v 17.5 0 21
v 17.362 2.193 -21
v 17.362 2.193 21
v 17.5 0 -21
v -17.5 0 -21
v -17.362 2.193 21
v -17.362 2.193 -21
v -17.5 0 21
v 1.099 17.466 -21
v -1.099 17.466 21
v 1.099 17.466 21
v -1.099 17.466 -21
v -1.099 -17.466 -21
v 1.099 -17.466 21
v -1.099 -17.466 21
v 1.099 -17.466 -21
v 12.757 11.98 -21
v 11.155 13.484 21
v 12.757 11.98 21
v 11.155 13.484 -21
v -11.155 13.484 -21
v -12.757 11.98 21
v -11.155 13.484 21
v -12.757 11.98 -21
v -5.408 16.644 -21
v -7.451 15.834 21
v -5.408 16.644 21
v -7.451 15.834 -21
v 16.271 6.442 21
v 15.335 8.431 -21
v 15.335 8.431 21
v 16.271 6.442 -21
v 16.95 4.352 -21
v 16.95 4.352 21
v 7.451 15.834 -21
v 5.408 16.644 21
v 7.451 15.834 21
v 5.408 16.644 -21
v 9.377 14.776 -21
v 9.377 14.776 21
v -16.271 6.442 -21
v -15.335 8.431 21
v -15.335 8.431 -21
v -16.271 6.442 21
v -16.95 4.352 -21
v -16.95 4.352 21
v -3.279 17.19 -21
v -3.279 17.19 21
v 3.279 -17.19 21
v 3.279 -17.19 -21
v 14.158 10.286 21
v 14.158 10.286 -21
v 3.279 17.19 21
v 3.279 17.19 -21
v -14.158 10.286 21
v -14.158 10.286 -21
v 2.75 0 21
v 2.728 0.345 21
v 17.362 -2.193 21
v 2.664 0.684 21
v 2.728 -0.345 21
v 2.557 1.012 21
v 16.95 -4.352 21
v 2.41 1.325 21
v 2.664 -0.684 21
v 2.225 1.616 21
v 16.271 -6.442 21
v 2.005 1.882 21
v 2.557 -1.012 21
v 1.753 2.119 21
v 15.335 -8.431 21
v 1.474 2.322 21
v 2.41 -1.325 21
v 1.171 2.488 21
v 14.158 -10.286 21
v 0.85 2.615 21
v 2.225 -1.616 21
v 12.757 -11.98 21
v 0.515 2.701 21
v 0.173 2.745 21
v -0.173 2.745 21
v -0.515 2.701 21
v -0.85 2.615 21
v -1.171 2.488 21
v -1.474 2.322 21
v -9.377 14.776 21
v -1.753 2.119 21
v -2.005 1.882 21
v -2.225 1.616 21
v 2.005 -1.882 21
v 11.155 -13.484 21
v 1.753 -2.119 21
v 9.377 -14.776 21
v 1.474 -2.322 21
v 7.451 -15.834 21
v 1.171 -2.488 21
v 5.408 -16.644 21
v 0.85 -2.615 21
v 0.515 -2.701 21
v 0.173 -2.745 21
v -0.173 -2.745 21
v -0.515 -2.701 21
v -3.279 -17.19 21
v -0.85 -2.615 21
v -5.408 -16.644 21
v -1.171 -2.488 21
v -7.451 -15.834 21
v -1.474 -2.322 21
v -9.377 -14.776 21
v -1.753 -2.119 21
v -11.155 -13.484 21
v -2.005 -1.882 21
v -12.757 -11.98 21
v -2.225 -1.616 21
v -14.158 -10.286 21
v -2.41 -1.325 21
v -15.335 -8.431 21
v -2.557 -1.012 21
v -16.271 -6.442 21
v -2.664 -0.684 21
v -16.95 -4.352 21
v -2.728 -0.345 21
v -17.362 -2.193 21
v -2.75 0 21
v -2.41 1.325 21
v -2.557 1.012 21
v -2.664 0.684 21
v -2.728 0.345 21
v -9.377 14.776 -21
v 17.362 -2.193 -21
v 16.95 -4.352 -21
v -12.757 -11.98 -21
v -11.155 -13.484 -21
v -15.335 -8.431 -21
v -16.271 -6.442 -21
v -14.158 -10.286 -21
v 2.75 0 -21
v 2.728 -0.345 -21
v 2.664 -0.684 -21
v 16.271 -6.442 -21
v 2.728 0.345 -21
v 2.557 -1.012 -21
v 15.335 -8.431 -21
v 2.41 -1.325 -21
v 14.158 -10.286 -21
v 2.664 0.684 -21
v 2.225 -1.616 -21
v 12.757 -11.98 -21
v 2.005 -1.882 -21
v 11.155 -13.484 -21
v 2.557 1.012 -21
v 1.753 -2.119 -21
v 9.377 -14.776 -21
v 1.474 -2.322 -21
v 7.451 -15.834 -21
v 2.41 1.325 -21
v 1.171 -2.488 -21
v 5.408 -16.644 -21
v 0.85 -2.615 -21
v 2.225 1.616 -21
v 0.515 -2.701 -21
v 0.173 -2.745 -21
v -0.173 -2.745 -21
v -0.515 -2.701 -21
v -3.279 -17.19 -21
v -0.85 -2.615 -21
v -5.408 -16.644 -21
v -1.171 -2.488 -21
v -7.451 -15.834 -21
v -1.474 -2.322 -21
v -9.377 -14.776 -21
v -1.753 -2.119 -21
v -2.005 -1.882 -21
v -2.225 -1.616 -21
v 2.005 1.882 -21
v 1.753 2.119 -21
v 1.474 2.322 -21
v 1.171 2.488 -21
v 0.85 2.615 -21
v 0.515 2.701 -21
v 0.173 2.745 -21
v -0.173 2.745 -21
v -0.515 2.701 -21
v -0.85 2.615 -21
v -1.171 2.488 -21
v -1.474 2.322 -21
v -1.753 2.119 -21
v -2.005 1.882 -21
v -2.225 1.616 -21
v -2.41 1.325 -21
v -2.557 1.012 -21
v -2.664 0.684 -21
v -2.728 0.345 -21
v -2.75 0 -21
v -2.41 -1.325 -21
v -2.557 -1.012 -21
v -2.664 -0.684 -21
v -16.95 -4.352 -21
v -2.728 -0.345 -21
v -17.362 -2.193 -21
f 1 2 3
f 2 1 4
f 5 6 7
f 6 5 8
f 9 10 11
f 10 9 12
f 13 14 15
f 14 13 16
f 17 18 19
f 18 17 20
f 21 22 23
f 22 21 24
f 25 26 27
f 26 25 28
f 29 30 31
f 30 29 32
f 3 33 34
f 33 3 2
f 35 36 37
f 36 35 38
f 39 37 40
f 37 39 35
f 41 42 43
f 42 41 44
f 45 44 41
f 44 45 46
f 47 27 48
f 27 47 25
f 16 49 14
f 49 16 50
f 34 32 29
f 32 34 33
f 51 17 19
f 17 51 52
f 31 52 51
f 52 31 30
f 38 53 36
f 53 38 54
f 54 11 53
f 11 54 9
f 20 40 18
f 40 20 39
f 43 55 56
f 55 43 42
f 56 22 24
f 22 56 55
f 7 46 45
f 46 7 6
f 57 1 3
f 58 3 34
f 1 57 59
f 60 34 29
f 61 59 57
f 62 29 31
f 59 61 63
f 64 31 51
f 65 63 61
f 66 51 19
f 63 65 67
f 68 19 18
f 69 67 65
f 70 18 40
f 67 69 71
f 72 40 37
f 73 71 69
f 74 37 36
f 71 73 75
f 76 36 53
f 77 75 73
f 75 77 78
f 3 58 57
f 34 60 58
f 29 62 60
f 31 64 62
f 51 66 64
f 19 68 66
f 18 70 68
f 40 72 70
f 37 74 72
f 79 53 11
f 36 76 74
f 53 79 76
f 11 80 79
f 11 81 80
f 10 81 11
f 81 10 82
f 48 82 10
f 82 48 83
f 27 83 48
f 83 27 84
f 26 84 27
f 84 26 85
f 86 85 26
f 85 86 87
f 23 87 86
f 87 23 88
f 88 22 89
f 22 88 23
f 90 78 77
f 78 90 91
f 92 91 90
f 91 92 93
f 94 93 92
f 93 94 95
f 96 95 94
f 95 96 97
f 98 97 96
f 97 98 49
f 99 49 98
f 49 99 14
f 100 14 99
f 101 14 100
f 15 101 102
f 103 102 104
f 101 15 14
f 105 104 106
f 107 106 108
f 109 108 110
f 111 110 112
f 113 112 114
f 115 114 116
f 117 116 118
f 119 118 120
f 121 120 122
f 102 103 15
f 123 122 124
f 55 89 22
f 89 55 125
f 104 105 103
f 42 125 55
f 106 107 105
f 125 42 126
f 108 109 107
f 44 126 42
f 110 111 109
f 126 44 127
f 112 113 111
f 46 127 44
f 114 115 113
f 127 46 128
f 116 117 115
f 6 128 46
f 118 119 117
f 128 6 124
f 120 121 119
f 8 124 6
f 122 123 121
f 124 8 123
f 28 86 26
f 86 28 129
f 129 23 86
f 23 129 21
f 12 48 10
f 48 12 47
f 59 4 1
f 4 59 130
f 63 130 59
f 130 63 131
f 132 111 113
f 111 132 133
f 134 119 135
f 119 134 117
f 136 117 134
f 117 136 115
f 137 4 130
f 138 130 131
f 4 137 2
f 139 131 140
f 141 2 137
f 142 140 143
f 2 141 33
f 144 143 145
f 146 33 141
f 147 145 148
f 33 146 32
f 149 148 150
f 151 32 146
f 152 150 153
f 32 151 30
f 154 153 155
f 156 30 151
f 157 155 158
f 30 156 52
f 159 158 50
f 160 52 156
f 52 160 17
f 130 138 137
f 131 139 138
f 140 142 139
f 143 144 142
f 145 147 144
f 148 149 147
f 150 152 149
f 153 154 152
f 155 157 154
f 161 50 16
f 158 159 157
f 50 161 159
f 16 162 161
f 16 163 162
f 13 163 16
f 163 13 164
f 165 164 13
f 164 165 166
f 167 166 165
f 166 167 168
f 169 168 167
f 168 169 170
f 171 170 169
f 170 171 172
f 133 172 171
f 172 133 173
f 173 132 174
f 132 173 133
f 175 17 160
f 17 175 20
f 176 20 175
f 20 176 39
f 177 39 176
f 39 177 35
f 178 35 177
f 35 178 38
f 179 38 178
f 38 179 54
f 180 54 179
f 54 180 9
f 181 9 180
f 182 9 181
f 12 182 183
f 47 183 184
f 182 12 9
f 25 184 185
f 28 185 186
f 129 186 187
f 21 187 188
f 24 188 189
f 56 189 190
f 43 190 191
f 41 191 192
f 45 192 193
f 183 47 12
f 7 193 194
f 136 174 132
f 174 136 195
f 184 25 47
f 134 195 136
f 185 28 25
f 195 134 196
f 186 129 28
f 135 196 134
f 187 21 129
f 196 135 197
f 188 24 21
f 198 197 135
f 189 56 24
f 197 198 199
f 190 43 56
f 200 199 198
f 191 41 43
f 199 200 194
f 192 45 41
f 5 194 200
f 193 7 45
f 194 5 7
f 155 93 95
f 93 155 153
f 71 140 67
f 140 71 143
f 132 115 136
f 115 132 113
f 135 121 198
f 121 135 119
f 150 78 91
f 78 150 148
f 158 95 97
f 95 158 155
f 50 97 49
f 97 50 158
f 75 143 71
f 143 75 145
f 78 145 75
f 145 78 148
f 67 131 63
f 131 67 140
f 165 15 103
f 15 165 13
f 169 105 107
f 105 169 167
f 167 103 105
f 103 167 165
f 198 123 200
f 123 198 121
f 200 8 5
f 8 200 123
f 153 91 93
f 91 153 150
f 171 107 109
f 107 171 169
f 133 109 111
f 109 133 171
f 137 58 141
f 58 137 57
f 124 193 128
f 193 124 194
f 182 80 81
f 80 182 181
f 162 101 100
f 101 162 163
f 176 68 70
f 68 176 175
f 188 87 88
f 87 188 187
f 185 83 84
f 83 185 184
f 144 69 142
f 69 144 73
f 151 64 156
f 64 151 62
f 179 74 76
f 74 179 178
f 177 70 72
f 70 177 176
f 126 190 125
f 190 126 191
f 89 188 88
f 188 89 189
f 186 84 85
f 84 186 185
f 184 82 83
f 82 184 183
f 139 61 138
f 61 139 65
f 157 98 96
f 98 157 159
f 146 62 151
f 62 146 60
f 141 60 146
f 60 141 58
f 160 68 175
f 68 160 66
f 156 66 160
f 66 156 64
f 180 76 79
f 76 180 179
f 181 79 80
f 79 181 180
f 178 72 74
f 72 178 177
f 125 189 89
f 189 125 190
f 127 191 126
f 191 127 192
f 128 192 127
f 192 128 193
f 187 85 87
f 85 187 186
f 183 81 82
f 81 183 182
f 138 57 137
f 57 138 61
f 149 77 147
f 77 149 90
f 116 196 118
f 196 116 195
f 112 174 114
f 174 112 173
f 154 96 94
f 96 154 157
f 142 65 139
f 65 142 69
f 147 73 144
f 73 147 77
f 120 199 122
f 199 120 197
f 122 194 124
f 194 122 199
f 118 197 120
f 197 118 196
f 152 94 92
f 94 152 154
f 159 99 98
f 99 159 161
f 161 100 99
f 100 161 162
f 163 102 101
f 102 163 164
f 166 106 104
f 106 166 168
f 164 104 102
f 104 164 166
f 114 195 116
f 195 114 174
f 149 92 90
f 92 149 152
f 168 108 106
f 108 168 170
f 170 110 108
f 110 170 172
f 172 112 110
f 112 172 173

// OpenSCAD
$fn = 50;


difference() {
	union() {
		translate(v = [0, 0, -21.0000000000]) {
			cylinder(h = 42, r = 17.5000000000);
		}
	}
	union() {
		translate(v = [0, 0, -100.0000000000]) {
			cylinder(h = 200, r = 2.7500000000);
		}
	}
}
